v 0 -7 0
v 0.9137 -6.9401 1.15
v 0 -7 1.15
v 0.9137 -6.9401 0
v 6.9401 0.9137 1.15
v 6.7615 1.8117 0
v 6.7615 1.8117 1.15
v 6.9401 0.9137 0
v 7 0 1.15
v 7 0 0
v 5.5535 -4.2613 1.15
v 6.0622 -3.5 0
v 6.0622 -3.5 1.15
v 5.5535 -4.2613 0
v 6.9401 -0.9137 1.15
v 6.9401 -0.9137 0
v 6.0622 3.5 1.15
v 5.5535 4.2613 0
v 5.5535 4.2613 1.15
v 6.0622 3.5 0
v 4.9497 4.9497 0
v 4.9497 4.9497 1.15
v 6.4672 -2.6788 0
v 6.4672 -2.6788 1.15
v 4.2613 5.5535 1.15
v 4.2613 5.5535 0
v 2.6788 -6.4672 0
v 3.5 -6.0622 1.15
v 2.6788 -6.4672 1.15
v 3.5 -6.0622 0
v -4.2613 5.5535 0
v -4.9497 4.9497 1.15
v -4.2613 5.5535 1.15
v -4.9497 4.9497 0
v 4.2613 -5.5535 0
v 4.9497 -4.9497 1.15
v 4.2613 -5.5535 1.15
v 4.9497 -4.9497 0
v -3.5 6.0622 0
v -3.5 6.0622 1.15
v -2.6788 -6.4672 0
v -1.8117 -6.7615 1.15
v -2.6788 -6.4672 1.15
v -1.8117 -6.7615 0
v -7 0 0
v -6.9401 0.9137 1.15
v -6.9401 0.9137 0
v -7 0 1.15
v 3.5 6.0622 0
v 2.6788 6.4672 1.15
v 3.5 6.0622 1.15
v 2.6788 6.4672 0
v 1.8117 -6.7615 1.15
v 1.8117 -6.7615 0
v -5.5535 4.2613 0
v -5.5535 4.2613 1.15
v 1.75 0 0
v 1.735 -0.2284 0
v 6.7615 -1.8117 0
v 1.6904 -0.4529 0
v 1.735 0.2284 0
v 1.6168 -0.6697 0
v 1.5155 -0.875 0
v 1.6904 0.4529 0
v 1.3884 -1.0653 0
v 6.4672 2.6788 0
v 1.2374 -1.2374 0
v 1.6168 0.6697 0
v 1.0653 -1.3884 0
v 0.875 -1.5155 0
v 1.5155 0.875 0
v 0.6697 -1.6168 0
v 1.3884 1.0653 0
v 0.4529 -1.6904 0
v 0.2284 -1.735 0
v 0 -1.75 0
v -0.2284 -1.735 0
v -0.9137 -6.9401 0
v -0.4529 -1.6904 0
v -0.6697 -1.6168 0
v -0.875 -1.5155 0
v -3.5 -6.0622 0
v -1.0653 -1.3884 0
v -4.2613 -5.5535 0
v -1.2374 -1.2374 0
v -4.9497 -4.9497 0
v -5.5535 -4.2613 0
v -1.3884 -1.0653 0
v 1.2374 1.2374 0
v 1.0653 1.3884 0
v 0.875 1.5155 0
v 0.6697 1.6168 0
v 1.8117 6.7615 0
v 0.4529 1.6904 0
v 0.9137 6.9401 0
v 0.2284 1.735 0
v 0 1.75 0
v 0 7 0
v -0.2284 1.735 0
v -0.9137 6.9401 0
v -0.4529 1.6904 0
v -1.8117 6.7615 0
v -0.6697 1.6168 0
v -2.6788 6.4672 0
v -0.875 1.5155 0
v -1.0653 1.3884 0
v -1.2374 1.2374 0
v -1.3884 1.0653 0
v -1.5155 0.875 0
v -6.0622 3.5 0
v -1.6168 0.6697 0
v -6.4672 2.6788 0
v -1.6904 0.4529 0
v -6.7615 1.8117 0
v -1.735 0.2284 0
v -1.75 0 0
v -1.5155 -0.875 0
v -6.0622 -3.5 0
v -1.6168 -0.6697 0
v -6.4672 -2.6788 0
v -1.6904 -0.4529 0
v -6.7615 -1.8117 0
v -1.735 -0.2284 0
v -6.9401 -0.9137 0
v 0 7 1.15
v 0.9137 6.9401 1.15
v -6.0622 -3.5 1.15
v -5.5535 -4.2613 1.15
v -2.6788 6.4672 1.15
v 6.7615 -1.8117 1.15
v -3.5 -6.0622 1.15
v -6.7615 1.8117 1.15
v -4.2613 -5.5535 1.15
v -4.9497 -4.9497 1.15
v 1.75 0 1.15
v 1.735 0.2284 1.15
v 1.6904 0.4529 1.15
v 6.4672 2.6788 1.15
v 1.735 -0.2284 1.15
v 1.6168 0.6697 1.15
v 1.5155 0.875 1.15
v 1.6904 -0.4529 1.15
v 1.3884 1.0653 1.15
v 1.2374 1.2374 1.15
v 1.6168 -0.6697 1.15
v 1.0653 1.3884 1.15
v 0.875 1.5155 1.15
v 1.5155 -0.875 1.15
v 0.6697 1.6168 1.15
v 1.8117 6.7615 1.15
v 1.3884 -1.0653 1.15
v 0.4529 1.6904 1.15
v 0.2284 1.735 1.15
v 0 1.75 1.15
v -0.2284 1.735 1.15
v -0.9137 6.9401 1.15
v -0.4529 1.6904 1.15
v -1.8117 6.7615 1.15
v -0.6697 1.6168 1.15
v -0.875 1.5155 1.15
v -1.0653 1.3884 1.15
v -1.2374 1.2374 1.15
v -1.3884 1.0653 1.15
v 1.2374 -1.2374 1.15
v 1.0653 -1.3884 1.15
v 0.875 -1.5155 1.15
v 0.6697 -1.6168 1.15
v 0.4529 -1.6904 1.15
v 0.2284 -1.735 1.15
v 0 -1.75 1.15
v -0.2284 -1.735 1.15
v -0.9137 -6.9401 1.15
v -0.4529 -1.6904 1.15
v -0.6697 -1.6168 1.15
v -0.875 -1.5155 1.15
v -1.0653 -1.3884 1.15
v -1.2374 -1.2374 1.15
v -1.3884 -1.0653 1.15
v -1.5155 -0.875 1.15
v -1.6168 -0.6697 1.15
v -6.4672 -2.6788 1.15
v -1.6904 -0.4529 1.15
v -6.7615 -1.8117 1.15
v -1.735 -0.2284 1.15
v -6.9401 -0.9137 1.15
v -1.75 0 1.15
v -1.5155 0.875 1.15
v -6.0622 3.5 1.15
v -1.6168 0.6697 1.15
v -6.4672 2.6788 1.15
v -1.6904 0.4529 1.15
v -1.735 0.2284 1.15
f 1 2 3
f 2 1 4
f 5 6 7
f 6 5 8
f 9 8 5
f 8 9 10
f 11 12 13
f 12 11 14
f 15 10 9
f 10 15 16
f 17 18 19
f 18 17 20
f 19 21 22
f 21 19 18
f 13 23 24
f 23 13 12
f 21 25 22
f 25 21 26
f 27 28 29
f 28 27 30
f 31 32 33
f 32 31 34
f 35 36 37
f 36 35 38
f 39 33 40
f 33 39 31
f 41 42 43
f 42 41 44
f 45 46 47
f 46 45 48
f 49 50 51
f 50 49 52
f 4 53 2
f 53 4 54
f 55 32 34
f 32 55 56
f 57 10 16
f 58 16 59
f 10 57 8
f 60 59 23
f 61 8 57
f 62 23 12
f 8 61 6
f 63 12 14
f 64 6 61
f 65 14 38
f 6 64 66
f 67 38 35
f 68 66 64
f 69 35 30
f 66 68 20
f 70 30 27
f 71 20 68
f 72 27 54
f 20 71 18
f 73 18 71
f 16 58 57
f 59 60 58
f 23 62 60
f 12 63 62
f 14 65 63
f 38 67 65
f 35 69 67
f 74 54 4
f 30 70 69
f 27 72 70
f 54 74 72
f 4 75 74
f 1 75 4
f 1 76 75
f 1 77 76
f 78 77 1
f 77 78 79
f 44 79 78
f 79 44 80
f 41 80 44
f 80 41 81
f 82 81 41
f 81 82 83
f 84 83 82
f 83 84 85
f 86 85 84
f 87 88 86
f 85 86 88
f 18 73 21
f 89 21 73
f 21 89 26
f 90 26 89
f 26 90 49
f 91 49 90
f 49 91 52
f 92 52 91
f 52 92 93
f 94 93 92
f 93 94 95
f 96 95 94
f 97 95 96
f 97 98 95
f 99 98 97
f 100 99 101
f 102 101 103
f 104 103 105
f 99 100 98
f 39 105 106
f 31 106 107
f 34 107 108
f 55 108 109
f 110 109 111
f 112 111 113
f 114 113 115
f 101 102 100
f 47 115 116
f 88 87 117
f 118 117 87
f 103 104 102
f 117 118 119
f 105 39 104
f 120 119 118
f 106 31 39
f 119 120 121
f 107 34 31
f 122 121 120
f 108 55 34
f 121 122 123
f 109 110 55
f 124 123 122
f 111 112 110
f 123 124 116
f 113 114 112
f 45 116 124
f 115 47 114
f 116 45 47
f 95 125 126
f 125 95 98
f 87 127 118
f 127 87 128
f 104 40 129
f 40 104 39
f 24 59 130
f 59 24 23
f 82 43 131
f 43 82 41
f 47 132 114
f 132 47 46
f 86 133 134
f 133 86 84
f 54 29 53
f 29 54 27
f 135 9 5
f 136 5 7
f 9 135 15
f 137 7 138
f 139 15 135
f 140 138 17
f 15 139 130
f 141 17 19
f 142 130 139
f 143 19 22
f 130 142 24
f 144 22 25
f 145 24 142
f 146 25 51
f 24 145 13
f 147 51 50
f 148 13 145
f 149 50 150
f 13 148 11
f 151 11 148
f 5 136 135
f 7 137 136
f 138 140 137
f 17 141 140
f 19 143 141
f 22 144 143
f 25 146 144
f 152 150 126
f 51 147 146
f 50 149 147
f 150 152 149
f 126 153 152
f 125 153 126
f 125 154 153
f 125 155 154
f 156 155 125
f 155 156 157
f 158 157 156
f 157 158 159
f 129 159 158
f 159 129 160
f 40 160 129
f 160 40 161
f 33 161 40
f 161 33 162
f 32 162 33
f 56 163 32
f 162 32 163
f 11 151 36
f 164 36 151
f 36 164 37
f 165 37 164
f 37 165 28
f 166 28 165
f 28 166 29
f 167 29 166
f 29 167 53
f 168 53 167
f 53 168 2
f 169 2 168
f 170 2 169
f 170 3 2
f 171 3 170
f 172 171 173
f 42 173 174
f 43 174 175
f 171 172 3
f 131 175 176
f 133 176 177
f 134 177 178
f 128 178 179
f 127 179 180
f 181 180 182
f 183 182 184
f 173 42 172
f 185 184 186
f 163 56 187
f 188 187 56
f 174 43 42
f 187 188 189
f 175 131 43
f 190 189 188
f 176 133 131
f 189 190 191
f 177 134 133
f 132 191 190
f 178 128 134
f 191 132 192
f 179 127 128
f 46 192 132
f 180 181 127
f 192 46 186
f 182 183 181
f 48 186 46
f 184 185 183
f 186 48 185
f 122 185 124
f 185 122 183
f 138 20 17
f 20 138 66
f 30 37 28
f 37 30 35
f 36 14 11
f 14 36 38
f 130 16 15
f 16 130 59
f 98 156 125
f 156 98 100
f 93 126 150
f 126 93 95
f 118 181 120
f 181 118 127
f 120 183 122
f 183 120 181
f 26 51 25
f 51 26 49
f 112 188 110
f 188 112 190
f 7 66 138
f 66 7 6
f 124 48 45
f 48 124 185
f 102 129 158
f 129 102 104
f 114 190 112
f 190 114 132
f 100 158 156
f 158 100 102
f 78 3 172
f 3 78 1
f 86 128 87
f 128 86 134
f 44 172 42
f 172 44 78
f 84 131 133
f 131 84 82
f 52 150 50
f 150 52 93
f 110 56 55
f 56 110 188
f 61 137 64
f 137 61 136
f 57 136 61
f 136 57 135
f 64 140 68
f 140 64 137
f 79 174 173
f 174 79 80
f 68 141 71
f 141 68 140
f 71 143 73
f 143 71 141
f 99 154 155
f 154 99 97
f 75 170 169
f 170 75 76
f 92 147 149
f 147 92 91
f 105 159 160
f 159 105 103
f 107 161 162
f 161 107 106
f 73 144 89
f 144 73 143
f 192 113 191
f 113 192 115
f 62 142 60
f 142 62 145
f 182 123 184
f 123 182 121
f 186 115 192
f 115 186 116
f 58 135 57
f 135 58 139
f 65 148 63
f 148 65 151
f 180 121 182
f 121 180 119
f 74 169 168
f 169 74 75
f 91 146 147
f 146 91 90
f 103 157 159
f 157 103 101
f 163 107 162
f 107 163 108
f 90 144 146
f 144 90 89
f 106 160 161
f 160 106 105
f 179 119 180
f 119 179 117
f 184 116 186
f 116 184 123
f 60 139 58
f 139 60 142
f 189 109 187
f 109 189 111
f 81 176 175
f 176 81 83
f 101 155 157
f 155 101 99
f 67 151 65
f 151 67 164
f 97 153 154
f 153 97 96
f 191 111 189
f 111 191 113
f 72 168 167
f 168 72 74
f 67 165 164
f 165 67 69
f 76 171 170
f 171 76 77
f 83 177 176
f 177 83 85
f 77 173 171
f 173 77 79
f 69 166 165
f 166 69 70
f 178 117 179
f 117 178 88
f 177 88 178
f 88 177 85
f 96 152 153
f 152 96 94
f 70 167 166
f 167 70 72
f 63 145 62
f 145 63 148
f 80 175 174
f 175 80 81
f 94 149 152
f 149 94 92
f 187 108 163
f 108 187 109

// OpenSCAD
// file: parameters.scad
// =============================================================================
// Gen-AE Dual-rotor HYPER-MICRO copper-max AFPM — WOUND-AWARE (HARD GATE)
// PRIMARY challenger vs Gen-AE. Thinner m2m 5.00 + 170 t + larger window.
// =============================================================================

// --- Wire / wind budget (26 AWG, ~1 lb spool ≈ 390 m bare-equiv) --------------
wire_awg            = 26;
wire_od             = 0.45;     // insulated OD mm
turns               = 170;      // +10 vs Gen-AE 160
fill                = 0.70;
layers_per_face     = 2;        // axial layers proud of EACH flange
wind_build_axial    = layers_per_face * wire_od * fill;   // 0.63 mm
wind_build_radial   = 3 * wire_od * fill;                 // 0.945 mm

// --- Pancake former (bare STL) — thinner web than Gen-AE ---------------------
coil_id_r           = 18.5;     // larger copper window vs Gen-AE 20–62
coil_od_r           = 64.0;
span_deg            = 26.0;     // 12 stations × 30° pitch
former_web          = 1.50;     // print-safe min (thinner than AB 1.6)
flange_t            = 0.60;     // print-safe min (≥0.6)
wall                = 1.2;
slot_w              = 2.4;
mount_hole          = 3.5;
tab_len             = 7.0;

former_bare_h       = former_web + 2 * flange_t;            // 2.70 mm
coil_envelope_h     = former_bare_h + 2 * wind_build_axial; // 3.96 mm

// --- Running clearance (magnet face → WOUND face) EACH side ------------------
run_clear           = 0.52;     // PASS ≥ 0.5 (hyper-micro band)
gap_spacer_h        = run_clear + wind_build_axial;         // 1.15 mm
m2m                 = coil_envelope_h + 2 * run_clear;      // 5.00 mm (beats Gen-AE 5.22)

// --- Mid stator (12 pancakes 3φ; winds proud both faces) ---------------------
coil_stations       = 12;
bay_r_in            = coil_id_r - 2.0 - wind_build_radial;
bay_r_out           = coil_od_r + 2.0 + wind_build_radial;
bay_span            = span_deg + 4.0;
bay_offset          = 2.0;
stator_thick        = former_bare_h;                        // winds proud ±Z
stator_od           = 160.0;    // bumped with carrier_od 156
shaft_clear_stator  = 36.0;
coil_mount_r        = 28.0;

// --- Rotors (×2) — 8×Ø20 + 24×Ø5 Halbach each face ---------------------------
large_pocket_d      = 20.3;
small_pocket_d      = 5.3;
pocket_h            = 5.2;
large_n             = 8;
R_large             = 54.0;
R_small_inner       = 42.0;
R_small_mid         = 54.0;
R_small_outer       = 66.0;
carrier_od          = 156.0;
carrier_thick       = 7.5;
hub_h               = 10.0;
hub_od              = 30.0;
rotor_b_offset_deg  = 22.5;

// --- Modular MAX interface (Gen-E family) ------------------------------------
shaft_bore          = 8.35;
bearing_d           = 21.85;
bearing_h           = 7.2;
m3_clear            = 3.5;
bolt_r_inner        = 36.0;
bolt_n_inner        = 6;
flange_bolt_r       = 72.0;
flange_bolt_n       = 6;
brace_r             = 68.0;
brace_d             = 4.3;
brace_n             = 4;

spacer_pad_od       = 14.0;
spacer_pad_id       = m3_clear;
endbell_od          = 160.0;
endbell_thick       = 8.0;
endbell_shaft_clear = 10.0;

$fn = 64;
// main file
// Gen-AE gap spacer — h = run_clear + wind_build_axial; print ×12
include <parameters.scad>;
$fn = 48;
difference() {
    cylinder(d=spacer_pad_od, h=gap_spacer_h);
    translate([0, 0, -0.1]) cylinder(d=spacer_pad_id, h=gap_spacer_h + 0.2);
}
